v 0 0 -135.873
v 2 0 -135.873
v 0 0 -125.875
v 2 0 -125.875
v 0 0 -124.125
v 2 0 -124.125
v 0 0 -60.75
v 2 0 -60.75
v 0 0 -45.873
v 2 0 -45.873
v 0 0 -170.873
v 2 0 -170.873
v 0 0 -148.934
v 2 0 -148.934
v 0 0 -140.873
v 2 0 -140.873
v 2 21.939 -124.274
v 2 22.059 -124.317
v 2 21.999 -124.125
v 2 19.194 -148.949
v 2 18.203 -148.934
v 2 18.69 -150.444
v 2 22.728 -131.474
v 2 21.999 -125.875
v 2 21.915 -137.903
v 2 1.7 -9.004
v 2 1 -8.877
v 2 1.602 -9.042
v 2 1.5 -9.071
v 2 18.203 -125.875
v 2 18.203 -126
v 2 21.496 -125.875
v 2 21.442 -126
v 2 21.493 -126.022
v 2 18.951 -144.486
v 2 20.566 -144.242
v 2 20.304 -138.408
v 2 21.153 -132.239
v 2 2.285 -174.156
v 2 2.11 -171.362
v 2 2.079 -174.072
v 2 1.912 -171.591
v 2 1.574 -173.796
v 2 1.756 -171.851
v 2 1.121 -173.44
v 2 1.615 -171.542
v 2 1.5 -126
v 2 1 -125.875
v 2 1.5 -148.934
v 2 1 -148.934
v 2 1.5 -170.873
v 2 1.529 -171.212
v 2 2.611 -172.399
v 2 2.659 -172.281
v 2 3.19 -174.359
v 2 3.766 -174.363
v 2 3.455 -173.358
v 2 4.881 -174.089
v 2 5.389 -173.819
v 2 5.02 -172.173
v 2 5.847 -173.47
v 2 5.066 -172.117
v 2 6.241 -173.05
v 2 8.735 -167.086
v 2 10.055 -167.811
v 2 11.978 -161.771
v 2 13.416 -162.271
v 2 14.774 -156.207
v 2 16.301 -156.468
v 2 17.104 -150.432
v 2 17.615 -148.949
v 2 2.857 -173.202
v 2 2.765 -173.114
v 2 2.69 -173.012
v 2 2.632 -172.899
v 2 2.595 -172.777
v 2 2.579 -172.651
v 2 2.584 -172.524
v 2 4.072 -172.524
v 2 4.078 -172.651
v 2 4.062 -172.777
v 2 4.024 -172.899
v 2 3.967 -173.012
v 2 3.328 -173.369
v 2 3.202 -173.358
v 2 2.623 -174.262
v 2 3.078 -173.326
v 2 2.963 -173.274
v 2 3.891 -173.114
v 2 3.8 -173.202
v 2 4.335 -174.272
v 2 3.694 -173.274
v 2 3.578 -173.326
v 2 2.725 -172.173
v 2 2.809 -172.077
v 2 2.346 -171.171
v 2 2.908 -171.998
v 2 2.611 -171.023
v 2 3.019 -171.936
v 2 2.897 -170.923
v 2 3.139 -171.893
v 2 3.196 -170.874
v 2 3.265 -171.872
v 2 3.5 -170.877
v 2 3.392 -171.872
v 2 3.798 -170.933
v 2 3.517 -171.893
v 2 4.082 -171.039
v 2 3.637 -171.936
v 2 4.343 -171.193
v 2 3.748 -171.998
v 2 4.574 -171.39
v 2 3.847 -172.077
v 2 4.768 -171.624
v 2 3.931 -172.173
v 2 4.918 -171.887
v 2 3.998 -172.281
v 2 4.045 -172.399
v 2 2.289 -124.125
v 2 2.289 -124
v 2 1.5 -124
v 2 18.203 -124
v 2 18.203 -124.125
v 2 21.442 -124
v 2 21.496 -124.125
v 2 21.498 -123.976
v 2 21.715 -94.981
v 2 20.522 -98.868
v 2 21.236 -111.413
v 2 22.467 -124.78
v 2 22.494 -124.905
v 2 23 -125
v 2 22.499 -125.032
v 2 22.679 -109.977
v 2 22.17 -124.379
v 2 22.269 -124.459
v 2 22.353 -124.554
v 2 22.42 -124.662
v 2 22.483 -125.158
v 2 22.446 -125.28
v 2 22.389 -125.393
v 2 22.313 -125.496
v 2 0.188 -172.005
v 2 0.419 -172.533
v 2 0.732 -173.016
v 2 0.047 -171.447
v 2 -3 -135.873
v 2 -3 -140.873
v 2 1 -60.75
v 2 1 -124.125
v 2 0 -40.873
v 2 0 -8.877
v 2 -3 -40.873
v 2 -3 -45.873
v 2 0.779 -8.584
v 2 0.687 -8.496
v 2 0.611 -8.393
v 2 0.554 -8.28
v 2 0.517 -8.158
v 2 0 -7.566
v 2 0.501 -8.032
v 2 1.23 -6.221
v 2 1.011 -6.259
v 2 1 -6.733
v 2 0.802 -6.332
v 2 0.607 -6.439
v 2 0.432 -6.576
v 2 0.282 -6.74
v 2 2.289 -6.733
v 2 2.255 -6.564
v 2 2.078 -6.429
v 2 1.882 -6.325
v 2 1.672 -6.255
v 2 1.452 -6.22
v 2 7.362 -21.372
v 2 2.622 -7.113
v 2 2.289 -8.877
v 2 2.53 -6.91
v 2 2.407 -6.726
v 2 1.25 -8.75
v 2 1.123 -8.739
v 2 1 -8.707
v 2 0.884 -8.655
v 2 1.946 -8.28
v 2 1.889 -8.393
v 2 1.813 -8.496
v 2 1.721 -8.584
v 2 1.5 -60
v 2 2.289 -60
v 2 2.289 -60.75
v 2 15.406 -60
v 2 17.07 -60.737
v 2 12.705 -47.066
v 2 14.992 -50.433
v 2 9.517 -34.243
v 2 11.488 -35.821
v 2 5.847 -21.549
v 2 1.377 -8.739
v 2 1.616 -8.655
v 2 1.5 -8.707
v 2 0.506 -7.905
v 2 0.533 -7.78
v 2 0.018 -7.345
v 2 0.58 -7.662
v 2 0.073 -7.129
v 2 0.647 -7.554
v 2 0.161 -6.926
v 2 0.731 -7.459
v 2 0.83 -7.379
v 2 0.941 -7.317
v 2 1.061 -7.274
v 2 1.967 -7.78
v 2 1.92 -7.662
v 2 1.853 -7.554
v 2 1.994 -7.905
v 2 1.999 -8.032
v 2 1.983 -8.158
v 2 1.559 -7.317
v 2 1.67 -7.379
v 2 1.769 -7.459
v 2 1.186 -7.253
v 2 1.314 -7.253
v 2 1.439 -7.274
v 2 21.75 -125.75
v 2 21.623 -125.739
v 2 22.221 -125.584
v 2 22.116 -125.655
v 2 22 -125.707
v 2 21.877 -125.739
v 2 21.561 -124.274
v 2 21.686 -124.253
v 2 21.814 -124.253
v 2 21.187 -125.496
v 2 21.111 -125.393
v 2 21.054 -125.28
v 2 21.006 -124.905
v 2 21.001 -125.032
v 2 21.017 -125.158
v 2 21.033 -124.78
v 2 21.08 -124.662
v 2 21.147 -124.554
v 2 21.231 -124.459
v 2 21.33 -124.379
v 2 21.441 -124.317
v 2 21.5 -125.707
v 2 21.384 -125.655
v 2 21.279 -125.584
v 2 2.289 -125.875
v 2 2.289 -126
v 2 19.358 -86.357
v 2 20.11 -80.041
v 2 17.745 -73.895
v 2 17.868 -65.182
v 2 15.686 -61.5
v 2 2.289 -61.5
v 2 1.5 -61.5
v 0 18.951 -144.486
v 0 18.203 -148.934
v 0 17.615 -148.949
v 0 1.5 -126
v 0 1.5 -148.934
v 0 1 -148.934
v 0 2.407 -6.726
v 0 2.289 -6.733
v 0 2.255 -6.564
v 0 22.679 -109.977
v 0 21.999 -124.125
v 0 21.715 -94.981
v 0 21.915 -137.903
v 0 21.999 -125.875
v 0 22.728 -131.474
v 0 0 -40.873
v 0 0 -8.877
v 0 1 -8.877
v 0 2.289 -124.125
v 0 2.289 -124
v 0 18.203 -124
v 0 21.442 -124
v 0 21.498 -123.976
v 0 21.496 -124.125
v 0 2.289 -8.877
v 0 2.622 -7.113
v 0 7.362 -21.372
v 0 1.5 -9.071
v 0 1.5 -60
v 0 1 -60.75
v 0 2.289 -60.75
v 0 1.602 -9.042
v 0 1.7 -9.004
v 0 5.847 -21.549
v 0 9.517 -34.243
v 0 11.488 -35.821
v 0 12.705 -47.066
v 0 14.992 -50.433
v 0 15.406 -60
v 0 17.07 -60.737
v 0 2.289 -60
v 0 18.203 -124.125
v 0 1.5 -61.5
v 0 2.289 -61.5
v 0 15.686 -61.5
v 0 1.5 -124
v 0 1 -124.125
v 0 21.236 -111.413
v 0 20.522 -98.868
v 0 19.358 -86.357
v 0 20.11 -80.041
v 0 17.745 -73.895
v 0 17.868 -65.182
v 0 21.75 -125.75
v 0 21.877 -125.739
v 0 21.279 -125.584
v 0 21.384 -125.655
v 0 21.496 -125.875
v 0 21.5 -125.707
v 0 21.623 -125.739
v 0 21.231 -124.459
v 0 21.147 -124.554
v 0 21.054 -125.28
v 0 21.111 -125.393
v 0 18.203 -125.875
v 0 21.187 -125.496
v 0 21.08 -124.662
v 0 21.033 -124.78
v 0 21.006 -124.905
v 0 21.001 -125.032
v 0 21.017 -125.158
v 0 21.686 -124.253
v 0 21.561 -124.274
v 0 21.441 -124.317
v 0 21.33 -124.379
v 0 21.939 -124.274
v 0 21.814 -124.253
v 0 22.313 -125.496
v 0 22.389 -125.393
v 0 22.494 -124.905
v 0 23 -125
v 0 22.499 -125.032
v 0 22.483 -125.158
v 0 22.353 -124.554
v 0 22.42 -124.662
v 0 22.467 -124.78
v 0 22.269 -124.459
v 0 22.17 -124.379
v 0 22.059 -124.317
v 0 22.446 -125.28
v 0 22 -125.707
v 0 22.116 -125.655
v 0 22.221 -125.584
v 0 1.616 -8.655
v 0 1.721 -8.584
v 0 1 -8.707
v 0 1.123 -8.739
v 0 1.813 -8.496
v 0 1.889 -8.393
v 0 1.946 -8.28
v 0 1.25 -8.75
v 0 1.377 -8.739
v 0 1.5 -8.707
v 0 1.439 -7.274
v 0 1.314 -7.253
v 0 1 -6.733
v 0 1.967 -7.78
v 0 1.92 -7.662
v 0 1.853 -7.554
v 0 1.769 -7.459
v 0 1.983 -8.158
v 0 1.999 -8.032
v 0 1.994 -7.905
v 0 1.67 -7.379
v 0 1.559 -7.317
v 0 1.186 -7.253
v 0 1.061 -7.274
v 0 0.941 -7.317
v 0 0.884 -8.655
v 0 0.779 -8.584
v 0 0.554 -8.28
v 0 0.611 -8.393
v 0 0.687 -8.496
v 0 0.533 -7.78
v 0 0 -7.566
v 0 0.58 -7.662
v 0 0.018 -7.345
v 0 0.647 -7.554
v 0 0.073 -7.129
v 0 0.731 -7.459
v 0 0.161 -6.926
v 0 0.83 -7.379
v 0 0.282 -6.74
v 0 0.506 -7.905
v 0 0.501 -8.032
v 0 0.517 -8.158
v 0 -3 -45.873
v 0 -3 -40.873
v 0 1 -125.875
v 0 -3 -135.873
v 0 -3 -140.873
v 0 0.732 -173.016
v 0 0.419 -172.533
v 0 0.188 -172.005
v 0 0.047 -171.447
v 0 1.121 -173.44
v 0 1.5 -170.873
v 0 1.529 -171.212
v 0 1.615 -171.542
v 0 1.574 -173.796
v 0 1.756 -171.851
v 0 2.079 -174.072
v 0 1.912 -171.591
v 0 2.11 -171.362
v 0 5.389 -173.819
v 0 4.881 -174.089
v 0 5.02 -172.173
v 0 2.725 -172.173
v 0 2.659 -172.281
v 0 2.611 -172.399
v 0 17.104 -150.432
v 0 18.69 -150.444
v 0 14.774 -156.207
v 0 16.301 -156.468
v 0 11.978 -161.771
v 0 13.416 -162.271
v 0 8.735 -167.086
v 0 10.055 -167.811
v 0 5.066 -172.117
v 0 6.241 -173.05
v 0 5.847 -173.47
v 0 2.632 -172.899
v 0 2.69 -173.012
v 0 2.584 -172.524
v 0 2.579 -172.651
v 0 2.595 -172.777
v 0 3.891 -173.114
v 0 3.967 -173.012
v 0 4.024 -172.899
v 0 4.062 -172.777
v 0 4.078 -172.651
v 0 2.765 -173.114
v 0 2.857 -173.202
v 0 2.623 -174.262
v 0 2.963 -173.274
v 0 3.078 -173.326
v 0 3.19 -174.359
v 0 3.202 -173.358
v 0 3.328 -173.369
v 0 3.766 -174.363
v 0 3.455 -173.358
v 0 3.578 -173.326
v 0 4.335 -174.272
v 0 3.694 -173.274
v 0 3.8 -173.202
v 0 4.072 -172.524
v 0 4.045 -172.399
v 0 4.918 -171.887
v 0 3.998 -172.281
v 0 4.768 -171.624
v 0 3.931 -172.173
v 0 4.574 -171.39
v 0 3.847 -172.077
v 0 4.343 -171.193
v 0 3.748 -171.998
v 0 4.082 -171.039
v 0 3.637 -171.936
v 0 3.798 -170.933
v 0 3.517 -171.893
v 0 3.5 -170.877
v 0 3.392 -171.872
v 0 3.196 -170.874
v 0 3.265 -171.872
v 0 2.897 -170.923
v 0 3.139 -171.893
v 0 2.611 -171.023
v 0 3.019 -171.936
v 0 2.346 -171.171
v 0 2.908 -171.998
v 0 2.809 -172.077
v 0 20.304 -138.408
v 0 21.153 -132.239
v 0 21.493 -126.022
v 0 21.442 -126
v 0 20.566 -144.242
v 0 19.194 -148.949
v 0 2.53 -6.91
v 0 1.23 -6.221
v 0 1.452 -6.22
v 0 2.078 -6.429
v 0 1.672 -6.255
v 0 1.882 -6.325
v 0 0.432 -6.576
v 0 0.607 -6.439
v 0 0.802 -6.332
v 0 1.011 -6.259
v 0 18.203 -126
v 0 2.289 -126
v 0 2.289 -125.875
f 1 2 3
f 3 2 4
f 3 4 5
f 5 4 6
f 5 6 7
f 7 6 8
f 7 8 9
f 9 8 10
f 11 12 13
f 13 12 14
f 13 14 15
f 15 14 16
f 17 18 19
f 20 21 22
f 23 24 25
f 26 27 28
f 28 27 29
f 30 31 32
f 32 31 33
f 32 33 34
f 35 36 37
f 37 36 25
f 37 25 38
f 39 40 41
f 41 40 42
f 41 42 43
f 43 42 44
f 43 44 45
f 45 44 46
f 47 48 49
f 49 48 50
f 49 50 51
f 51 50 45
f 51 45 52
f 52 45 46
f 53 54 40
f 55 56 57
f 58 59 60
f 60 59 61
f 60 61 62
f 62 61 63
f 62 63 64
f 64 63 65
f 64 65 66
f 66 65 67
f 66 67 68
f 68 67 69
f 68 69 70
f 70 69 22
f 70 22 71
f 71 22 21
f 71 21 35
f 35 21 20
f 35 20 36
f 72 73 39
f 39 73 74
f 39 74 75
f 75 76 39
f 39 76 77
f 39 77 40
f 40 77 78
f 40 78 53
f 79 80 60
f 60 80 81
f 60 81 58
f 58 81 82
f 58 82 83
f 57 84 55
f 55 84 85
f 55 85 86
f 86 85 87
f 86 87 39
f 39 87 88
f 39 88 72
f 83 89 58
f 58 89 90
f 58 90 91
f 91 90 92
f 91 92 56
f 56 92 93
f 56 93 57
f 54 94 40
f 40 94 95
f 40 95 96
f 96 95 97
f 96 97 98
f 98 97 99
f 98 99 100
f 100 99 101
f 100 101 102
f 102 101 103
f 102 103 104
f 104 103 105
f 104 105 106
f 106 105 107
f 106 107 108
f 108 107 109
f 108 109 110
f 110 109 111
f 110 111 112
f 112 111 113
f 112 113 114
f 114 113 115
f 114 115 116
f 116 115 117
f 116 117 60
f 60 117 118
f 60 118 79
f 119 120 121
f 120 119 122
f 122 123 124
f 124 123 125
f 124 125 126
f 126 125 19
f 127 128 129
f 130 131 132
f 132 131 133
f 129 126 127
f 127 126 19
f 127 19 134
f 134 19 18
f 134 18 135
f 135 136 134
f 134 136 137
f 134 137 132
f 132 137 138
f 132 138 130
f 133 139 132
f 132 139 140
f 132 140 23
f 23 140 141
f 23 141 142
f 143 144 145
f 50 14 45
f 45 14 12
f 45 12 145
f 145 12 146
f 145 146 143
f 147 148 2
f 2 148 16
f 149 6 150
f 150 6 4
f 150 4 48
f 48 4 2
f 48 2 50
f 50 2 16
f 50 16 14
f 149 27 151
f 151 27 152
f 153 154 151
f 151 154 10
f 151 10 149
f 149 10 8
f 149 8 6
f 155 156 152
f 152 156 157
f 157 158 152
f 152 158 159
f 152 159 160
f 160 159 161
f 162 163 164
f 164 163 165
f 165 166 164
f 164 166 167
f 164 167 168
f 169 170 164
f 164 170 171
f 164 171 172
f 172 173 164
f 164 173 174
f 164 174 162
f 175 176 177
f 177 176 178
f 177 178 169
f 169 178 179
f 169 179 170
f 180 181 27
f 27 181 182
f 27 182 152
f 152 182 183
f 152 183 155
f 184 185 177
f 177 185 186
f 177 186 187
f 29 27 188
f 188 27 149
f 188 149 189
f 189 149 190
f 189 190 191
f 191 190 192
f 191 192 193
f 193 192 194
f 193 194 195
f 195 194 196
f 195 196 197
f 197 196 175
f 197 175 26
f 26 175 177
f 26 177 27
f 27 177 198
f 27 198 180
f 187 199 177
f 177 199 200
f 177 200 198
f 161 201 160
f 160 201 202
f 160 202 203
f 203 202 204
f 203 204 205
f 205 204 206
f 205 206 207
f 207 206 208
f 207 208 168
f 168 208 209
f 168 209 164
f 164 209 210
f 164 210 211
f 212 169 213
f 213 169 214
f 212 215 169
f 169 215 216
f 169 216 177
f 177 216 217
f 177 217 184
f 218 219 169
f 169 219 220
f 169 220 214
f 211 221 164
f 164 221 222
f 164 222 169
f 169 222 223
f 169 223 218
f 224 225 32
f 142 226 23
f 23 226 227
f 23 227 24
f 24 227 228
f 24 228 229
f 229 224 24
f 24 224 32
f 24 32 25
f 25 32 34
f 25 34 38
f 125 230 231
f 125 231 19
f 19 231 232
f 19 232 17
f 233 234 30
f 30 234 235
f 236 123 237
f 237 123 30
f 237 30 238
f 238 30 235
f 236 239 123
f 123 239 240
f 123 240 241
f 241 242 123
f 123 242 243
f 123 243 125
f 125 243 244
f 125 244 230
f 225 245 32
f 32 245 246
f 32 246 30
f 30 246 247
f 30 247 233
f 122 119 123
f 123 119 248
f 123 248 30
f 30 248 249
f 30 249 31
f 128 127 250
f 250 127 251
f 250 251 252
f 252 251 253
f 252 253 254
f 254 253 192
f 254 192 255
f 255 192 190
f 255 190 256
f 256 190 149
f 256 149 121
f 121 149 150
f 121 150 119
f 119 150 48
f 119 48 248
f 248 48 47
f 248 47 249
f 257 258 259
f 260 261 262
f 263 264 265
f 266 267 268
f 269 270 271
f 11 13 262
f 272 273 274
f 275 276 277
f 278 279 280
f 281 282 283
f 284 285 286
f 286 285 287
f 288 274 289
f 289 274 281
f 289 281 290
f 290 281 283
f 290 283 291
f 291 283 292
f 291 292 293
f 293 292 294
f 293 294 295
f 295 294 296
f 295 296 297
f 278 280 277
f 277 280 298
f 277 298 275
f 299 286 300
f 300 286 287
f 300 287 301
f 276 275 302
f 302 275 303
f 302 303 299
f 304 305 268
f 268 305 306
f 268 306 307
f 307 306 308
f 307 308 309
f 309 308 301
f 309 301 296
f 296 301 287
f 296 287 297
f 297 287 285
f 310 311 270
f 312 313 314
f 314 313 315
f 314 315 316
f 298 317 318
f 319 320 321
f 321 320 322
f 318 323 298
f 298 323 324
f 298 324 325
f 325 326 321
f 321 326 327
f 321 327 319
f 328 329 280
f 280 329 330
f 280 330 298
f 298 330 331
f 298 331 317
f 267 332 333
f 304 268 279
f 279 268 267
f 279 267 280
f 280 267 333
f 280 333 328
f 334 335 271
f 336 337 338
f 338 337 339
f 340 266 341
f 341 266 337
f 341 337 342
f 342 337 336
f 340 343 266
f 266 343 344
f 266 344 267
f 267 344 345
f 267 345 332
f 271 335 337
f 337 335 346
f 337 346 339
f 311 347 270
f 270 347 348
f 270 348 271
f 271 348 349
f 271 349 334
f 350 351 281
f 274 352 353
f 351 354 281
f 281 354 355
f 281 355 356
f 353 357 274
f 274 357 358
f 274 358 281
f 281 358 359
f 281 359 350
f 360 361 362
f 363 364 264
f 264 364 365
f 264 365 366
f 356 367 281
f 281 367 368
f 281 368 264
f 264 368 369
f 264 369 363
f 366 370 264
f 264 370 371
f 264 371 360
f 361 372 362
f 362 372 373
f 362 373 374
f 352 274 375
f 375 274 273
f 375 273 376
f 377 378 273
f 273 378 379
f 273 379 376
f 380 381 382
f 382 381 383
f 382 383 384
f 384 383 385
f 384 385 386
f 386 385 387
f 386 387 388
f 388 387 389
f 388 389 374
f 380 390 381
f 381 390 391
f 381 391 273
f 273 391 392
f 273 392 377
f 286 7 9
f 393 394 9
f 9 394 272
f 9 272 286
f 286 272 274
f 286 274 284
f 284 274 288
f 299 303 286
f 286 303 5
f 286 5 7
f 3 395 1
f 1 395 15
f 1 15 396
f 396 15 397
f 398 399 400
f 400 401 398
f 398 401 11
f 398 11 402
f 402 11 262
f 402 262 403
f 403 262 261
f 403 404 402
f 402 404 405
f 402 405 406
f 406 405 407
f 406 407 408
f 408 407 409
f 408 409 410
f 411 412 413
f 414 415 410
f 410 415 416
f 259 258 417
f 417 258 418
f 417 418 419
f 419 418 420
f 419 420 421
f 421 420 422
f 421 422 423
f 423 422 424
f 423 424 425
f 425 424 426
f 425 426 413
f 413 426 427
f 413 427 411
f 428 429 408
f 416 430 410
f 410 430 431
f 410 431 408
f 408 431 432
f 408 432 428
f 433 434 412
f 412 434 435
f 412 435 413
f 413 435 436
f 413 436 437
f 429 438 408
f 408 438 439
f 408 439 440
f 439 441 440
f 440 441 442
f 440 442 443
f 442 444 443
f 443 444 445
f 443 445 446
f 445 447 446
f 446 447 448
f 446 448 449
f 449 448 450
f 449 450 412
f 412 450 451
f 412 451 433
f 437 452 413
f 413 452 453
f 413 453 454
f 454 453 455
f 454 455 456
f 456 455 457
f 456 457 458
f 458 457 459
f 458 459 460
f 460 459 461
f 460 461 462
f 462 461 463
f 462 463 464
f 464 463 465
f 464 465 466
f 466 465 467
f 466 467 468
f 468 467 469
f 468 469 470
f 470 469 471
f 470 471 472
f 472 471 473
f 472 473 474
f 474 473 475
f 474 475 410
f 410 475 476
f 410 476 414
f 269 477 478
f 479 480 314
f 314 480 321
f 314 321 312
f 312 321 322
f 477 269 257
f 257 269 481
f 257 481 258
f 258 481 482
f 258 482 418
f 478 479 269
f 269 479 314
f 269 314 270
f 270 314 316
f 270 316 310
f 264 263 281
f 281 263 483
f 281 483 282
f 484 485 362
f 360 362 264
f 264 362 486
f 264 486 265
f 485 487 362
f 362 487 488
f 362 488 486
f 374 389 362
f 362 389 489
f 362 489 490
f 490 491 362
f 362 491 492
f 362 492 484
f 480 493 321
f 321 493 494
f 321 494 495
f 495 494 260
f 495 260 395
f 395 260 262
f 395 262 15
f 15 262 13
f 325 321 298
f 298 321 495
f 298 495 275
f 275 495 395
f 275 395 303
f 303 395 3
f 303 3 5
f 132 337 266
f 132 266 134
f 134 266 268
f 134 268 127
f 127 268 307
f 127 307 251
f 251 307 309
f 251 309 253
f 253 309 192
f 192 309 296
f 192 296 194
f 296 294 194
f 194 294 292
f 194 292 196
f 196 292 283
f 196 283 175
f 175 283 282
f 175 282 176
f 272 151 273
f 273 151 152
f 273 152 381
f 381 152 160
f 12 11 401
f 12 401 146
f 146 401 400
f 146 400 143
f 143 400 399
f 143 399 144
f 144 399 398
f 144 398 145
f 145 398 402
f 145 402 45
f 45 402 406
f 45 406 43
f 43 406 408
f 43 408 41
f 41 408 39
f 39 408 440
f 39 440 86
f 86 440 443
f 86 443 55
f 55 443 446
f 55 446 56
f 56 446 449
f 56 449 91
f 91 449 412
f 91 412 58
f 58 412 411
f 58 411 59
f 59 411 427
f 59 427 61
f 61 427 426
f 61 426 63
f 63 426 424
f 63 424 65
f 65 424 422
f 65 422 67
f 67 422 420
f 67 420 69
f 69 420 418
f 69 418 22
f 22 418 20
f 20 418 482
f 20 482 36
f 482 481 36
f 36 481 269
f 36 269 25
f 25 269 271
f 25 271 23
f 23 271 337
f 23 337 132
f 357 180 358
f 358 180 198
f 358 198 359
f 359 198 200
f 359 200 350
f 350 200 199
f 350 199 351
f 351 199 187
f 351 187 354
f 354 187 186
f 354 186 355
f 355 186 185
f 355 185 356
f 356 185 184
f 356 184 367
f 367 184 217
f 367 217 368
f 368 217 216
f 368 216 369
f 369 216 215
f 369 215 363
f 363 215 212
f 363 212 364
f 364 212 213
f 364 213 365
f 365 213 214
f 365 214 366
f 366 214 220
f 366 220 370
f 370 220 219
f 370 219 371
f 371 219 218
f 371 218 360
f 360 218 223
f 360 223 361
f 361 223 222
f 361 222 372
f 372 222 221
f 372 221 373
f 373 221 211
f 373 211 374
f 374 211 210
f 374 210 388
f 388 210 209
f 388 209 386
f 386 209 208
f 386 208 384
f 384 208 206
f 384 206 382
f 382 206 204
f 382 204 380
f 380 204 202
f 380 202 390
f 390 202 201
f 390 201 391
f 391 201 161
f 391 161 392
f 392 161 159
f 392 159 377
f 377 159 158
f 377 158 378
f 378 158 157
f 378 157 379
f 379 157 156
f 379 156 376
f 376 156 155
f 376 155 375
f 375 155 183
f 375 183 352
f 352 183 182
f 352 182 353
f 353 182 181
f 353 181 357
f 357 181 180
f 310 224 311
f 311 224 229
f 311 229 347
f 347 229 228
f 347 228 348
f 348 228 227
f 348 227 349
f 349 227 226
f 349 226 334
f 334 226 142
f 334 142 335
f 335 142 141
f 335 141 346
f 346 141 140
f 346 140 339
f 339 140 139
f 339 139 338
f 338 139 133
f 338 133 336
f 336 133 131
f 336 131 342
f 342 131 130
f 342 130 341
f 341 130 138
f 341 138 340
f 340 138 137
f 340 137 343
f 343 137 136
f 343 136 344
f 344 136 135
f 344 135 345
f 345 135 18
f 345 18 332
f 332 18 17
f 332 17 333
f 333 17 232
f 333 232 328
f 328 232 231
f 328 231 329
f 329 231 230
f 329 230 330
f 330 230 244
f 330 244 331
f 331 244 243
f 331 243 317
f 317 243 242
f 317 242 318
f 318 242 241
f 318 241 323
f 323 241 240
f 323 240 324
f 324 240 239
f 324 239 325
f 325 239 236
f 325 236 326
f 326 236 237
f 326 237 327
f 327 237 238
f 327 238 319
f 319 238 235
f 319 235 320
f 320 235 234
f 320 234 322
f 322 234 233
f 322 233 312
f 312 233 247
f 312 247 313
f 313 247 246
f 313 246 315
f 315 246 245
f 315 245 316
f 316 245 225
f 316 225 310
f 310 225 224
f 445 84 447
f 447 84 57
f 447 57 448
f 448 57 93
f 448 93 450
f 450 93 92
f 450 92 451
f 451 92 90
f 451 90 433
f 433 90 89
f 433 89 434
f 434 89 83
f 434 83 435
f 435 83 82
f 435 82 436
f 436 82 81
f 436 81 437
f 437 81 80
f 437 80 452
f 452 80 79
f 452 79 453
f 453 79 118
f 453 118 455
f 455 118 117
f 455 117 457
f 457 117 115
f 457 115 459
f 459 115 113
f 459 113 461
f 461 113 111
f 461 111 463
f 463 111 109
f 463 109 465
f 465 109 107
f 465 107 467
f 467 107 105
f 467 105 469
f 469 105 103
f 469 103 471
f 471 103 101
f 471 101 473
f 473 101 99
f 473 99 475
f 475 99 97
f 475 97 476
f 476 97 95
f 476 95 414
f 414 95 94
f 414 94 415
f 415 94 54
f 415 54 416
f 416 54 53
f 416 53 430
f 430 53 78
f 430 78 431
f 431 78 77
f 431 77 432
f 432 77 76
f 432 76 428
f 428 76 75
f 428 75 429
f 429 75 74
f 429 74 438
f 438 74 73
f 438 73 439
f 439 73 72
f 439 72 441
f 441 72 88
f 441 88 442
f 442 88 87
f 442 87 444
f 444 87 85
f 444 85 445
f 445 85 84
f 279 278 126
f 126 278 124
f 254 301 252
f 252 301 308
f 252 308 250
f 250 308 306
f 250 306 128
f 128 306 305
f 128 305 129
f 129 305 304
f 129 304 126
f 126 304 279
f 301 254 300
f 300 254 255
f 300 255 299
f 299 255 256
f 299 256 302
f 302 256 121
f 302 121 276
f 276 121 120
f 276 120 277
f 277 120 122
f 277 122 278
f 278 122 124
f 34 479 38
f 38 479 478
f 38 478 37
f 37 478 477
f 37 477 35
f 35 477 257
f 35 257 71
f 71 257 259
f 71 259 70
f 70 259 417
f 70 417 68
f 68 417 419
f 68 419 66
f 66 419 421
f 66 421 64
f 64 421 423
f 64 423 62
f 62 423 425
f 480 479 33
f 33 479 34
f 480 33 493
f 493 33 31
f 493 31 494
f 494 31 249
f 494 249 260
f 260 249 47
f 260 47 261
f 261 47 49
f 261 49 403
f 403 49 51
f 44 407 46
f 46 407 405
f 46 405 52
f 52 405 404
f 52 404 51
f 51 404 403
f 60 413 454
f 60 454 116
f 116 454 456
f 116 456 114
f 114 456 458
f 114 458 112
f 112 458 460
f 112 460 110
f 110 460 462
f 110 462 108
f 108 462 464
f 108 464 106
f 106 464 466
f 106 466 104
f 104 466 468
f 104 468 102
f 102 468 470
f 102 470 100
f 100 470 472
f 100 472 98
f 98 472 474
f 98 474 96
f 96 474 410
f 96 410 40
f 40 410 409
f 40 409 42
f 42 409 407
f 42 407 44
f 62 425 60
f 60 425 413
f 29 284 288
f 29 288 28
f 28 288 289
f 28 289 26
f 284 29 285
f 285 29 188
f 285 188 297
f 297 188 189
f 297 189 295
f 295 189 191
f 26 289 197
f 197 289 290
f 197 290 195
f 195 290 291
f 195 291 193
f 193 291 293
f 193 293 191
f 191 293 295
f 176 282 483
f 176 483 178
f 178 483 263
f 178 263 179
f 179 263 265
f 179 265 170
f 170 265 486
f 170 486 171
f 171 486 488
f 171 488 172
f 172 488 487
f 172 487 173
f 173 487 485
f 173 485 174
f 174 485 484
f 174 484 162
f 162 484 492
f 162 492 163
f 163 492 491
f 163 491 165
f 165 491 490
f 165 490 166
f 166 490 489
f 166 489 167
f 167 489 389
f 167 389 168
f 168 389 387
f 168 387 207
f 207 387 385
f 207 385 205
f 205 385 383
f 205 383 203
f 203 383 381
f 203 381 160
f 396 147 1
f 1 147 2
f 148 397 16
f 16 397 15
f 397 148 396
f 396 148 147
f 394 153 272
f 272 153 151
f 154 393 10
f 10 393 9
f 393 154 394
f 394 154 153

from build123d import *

# Parameters (mm, degrees)
BOSS_EXTRU_1_DEPTH      = 2
ESQUISSE4_R             = 0.75
ENL_V_MAT_EXTRU_2_DEPTH = 176.894862906
ENL_V_MAT_EXTRU_3_DEPTH = 4
CONG_2_R                = 1.35
ESQUISSE12_W            = 2
ESQUISSE12_H            = 5
BOSS_EXTRU_2_DEPTH      = 3


with BuildPart() as part:
    # Esquisse2 → Boss.-Extru.1 (new body)
    with BuildSketch(Plane(origin=(0, 0, 0), x_dir=(0, 0, -1), z_dir=(1, 0, 0))):
        with BuildLine():
            Line((0, 0), (170.873171093, 0))
            ThreePointArc((170.873171093, 0), (174.177922559, 2.347343181), (173.049882129, 6.240789861))
            ThreePointArc((173.049882129, 6.240789861), (150.444362328, 18.689979585), (125, 23))
            ThreePointArc((125, 23), (61.450806457, 17.202138822), (0, 0))
        make_face()
    extrude(amount=BOSS_EXTRU_1_DEPTH)

    # Esquisse4 → Enlèv. mat.-Extru.2 (cut, through all)
    with BuildSketch(Plane(origin=(2, 0, 0), x_dir=(0, 0, -1), z_dir=(1, 0, 0))):
        with Locations((125, 21.75)):
            Circle(ESQUISSE4_R)
        with Locations((172.618958832, 3.328337296)):
            Circle(ESQUISSE4_R)
        with Locations((8, 1.25)):
            Circle(ESQUISSE4_R)
    extrude(amount=-ENL_V_MAT_EXTRU_2_DEPTH, mode=Mode.SUBTRACT)

    # Esquisse9 → Enlèv. mat.-Extru.3 (cut)
    with BuildSketch(Plane(origin=(0, 0, 0), x_dir=(0, 0, -1), z_dir=(1, 0, 0))):
        with BuildLine():
            Line((126, 1.5), (170.873171093, 1.5))
            ThreePointArc((170.873171093, 1.5), (171.378747106, 1.564956617), (171.851482612, 1.755607106))
            ThreePointArc((171.851482612, 1.755607106), (170.877358103, 3.499588293), (172.172511728, 5.020432147))
            ThreePointArc((172.172511728, 5.020432147), (172.144964437, 5.043548409), (172.11700597, 5.066165635))
            ThreePointArc((172.11700597, 5.066165635), (150.432293025, 17.103742315), (126.021977416, 21.493106696))
            ThreePointArc((126.021977416, 21.493106696), (126.011314857, 21.467285013), (126, 21.441742431))
            Line((126, 21.441742431), (126, 1.5))
        make_face()
        with BuildLine():
            Line((9.071214264, 1.5), (60, 1.5))
            Line((60, 1.5), (60, 15.405547145))
            ThreePointArc((60, 15.405547145), (34.242807282, 9.516740415), (9.003792697, 1.699889121))
            ThreePointArc((9.003792697, 1.699889121), (9.042306283, 1.601564521), (9.071214264, 1.5))
        make_face()
        with BuildLine():
            Line((124, 21.441742431), (124, 1.5))
            Line((124, 1.5), (61.5, 1.5))
            Line((61.5, 1.5), (61.5, 15.685935533))
            ThreePointArc((61.5, 15.685935533), (92.607306096, 19.996388454), (123.975891605, 21.498500317))
            ThreePointArc((123.975891605, 21.498500317), (123.987547995, 21.469952401), (124, 21.441742431))
        make_face()
    extrude(amount=ENL_V_MAT_EXTRU_3_DEPTH, mode=Mode.SUBTRACT)

    # Congé2
    cong_2_edges = [part.edges().sort_by_distance(p)[0] for p in [
        (1, 0, 0),
    ]]
    fillet(cong_2_edges, radius=CONG_2_R)

    # Esquisse12 → Boss.-Extru.2 (add)
    with BuildSketch(Plane.XZ):
        with Locations((1, -138.373171093)):
            Rectangle(ESQUISSE12_W, ESQUISSE12_H)
        with Locations((1, -43.373171093)):
            Rectangle(ESQUISSE12_W, ESQUISSE12_H)
    extrude(amount=BOSS_EXTRU_2_DEPTH)


solid = part.part
